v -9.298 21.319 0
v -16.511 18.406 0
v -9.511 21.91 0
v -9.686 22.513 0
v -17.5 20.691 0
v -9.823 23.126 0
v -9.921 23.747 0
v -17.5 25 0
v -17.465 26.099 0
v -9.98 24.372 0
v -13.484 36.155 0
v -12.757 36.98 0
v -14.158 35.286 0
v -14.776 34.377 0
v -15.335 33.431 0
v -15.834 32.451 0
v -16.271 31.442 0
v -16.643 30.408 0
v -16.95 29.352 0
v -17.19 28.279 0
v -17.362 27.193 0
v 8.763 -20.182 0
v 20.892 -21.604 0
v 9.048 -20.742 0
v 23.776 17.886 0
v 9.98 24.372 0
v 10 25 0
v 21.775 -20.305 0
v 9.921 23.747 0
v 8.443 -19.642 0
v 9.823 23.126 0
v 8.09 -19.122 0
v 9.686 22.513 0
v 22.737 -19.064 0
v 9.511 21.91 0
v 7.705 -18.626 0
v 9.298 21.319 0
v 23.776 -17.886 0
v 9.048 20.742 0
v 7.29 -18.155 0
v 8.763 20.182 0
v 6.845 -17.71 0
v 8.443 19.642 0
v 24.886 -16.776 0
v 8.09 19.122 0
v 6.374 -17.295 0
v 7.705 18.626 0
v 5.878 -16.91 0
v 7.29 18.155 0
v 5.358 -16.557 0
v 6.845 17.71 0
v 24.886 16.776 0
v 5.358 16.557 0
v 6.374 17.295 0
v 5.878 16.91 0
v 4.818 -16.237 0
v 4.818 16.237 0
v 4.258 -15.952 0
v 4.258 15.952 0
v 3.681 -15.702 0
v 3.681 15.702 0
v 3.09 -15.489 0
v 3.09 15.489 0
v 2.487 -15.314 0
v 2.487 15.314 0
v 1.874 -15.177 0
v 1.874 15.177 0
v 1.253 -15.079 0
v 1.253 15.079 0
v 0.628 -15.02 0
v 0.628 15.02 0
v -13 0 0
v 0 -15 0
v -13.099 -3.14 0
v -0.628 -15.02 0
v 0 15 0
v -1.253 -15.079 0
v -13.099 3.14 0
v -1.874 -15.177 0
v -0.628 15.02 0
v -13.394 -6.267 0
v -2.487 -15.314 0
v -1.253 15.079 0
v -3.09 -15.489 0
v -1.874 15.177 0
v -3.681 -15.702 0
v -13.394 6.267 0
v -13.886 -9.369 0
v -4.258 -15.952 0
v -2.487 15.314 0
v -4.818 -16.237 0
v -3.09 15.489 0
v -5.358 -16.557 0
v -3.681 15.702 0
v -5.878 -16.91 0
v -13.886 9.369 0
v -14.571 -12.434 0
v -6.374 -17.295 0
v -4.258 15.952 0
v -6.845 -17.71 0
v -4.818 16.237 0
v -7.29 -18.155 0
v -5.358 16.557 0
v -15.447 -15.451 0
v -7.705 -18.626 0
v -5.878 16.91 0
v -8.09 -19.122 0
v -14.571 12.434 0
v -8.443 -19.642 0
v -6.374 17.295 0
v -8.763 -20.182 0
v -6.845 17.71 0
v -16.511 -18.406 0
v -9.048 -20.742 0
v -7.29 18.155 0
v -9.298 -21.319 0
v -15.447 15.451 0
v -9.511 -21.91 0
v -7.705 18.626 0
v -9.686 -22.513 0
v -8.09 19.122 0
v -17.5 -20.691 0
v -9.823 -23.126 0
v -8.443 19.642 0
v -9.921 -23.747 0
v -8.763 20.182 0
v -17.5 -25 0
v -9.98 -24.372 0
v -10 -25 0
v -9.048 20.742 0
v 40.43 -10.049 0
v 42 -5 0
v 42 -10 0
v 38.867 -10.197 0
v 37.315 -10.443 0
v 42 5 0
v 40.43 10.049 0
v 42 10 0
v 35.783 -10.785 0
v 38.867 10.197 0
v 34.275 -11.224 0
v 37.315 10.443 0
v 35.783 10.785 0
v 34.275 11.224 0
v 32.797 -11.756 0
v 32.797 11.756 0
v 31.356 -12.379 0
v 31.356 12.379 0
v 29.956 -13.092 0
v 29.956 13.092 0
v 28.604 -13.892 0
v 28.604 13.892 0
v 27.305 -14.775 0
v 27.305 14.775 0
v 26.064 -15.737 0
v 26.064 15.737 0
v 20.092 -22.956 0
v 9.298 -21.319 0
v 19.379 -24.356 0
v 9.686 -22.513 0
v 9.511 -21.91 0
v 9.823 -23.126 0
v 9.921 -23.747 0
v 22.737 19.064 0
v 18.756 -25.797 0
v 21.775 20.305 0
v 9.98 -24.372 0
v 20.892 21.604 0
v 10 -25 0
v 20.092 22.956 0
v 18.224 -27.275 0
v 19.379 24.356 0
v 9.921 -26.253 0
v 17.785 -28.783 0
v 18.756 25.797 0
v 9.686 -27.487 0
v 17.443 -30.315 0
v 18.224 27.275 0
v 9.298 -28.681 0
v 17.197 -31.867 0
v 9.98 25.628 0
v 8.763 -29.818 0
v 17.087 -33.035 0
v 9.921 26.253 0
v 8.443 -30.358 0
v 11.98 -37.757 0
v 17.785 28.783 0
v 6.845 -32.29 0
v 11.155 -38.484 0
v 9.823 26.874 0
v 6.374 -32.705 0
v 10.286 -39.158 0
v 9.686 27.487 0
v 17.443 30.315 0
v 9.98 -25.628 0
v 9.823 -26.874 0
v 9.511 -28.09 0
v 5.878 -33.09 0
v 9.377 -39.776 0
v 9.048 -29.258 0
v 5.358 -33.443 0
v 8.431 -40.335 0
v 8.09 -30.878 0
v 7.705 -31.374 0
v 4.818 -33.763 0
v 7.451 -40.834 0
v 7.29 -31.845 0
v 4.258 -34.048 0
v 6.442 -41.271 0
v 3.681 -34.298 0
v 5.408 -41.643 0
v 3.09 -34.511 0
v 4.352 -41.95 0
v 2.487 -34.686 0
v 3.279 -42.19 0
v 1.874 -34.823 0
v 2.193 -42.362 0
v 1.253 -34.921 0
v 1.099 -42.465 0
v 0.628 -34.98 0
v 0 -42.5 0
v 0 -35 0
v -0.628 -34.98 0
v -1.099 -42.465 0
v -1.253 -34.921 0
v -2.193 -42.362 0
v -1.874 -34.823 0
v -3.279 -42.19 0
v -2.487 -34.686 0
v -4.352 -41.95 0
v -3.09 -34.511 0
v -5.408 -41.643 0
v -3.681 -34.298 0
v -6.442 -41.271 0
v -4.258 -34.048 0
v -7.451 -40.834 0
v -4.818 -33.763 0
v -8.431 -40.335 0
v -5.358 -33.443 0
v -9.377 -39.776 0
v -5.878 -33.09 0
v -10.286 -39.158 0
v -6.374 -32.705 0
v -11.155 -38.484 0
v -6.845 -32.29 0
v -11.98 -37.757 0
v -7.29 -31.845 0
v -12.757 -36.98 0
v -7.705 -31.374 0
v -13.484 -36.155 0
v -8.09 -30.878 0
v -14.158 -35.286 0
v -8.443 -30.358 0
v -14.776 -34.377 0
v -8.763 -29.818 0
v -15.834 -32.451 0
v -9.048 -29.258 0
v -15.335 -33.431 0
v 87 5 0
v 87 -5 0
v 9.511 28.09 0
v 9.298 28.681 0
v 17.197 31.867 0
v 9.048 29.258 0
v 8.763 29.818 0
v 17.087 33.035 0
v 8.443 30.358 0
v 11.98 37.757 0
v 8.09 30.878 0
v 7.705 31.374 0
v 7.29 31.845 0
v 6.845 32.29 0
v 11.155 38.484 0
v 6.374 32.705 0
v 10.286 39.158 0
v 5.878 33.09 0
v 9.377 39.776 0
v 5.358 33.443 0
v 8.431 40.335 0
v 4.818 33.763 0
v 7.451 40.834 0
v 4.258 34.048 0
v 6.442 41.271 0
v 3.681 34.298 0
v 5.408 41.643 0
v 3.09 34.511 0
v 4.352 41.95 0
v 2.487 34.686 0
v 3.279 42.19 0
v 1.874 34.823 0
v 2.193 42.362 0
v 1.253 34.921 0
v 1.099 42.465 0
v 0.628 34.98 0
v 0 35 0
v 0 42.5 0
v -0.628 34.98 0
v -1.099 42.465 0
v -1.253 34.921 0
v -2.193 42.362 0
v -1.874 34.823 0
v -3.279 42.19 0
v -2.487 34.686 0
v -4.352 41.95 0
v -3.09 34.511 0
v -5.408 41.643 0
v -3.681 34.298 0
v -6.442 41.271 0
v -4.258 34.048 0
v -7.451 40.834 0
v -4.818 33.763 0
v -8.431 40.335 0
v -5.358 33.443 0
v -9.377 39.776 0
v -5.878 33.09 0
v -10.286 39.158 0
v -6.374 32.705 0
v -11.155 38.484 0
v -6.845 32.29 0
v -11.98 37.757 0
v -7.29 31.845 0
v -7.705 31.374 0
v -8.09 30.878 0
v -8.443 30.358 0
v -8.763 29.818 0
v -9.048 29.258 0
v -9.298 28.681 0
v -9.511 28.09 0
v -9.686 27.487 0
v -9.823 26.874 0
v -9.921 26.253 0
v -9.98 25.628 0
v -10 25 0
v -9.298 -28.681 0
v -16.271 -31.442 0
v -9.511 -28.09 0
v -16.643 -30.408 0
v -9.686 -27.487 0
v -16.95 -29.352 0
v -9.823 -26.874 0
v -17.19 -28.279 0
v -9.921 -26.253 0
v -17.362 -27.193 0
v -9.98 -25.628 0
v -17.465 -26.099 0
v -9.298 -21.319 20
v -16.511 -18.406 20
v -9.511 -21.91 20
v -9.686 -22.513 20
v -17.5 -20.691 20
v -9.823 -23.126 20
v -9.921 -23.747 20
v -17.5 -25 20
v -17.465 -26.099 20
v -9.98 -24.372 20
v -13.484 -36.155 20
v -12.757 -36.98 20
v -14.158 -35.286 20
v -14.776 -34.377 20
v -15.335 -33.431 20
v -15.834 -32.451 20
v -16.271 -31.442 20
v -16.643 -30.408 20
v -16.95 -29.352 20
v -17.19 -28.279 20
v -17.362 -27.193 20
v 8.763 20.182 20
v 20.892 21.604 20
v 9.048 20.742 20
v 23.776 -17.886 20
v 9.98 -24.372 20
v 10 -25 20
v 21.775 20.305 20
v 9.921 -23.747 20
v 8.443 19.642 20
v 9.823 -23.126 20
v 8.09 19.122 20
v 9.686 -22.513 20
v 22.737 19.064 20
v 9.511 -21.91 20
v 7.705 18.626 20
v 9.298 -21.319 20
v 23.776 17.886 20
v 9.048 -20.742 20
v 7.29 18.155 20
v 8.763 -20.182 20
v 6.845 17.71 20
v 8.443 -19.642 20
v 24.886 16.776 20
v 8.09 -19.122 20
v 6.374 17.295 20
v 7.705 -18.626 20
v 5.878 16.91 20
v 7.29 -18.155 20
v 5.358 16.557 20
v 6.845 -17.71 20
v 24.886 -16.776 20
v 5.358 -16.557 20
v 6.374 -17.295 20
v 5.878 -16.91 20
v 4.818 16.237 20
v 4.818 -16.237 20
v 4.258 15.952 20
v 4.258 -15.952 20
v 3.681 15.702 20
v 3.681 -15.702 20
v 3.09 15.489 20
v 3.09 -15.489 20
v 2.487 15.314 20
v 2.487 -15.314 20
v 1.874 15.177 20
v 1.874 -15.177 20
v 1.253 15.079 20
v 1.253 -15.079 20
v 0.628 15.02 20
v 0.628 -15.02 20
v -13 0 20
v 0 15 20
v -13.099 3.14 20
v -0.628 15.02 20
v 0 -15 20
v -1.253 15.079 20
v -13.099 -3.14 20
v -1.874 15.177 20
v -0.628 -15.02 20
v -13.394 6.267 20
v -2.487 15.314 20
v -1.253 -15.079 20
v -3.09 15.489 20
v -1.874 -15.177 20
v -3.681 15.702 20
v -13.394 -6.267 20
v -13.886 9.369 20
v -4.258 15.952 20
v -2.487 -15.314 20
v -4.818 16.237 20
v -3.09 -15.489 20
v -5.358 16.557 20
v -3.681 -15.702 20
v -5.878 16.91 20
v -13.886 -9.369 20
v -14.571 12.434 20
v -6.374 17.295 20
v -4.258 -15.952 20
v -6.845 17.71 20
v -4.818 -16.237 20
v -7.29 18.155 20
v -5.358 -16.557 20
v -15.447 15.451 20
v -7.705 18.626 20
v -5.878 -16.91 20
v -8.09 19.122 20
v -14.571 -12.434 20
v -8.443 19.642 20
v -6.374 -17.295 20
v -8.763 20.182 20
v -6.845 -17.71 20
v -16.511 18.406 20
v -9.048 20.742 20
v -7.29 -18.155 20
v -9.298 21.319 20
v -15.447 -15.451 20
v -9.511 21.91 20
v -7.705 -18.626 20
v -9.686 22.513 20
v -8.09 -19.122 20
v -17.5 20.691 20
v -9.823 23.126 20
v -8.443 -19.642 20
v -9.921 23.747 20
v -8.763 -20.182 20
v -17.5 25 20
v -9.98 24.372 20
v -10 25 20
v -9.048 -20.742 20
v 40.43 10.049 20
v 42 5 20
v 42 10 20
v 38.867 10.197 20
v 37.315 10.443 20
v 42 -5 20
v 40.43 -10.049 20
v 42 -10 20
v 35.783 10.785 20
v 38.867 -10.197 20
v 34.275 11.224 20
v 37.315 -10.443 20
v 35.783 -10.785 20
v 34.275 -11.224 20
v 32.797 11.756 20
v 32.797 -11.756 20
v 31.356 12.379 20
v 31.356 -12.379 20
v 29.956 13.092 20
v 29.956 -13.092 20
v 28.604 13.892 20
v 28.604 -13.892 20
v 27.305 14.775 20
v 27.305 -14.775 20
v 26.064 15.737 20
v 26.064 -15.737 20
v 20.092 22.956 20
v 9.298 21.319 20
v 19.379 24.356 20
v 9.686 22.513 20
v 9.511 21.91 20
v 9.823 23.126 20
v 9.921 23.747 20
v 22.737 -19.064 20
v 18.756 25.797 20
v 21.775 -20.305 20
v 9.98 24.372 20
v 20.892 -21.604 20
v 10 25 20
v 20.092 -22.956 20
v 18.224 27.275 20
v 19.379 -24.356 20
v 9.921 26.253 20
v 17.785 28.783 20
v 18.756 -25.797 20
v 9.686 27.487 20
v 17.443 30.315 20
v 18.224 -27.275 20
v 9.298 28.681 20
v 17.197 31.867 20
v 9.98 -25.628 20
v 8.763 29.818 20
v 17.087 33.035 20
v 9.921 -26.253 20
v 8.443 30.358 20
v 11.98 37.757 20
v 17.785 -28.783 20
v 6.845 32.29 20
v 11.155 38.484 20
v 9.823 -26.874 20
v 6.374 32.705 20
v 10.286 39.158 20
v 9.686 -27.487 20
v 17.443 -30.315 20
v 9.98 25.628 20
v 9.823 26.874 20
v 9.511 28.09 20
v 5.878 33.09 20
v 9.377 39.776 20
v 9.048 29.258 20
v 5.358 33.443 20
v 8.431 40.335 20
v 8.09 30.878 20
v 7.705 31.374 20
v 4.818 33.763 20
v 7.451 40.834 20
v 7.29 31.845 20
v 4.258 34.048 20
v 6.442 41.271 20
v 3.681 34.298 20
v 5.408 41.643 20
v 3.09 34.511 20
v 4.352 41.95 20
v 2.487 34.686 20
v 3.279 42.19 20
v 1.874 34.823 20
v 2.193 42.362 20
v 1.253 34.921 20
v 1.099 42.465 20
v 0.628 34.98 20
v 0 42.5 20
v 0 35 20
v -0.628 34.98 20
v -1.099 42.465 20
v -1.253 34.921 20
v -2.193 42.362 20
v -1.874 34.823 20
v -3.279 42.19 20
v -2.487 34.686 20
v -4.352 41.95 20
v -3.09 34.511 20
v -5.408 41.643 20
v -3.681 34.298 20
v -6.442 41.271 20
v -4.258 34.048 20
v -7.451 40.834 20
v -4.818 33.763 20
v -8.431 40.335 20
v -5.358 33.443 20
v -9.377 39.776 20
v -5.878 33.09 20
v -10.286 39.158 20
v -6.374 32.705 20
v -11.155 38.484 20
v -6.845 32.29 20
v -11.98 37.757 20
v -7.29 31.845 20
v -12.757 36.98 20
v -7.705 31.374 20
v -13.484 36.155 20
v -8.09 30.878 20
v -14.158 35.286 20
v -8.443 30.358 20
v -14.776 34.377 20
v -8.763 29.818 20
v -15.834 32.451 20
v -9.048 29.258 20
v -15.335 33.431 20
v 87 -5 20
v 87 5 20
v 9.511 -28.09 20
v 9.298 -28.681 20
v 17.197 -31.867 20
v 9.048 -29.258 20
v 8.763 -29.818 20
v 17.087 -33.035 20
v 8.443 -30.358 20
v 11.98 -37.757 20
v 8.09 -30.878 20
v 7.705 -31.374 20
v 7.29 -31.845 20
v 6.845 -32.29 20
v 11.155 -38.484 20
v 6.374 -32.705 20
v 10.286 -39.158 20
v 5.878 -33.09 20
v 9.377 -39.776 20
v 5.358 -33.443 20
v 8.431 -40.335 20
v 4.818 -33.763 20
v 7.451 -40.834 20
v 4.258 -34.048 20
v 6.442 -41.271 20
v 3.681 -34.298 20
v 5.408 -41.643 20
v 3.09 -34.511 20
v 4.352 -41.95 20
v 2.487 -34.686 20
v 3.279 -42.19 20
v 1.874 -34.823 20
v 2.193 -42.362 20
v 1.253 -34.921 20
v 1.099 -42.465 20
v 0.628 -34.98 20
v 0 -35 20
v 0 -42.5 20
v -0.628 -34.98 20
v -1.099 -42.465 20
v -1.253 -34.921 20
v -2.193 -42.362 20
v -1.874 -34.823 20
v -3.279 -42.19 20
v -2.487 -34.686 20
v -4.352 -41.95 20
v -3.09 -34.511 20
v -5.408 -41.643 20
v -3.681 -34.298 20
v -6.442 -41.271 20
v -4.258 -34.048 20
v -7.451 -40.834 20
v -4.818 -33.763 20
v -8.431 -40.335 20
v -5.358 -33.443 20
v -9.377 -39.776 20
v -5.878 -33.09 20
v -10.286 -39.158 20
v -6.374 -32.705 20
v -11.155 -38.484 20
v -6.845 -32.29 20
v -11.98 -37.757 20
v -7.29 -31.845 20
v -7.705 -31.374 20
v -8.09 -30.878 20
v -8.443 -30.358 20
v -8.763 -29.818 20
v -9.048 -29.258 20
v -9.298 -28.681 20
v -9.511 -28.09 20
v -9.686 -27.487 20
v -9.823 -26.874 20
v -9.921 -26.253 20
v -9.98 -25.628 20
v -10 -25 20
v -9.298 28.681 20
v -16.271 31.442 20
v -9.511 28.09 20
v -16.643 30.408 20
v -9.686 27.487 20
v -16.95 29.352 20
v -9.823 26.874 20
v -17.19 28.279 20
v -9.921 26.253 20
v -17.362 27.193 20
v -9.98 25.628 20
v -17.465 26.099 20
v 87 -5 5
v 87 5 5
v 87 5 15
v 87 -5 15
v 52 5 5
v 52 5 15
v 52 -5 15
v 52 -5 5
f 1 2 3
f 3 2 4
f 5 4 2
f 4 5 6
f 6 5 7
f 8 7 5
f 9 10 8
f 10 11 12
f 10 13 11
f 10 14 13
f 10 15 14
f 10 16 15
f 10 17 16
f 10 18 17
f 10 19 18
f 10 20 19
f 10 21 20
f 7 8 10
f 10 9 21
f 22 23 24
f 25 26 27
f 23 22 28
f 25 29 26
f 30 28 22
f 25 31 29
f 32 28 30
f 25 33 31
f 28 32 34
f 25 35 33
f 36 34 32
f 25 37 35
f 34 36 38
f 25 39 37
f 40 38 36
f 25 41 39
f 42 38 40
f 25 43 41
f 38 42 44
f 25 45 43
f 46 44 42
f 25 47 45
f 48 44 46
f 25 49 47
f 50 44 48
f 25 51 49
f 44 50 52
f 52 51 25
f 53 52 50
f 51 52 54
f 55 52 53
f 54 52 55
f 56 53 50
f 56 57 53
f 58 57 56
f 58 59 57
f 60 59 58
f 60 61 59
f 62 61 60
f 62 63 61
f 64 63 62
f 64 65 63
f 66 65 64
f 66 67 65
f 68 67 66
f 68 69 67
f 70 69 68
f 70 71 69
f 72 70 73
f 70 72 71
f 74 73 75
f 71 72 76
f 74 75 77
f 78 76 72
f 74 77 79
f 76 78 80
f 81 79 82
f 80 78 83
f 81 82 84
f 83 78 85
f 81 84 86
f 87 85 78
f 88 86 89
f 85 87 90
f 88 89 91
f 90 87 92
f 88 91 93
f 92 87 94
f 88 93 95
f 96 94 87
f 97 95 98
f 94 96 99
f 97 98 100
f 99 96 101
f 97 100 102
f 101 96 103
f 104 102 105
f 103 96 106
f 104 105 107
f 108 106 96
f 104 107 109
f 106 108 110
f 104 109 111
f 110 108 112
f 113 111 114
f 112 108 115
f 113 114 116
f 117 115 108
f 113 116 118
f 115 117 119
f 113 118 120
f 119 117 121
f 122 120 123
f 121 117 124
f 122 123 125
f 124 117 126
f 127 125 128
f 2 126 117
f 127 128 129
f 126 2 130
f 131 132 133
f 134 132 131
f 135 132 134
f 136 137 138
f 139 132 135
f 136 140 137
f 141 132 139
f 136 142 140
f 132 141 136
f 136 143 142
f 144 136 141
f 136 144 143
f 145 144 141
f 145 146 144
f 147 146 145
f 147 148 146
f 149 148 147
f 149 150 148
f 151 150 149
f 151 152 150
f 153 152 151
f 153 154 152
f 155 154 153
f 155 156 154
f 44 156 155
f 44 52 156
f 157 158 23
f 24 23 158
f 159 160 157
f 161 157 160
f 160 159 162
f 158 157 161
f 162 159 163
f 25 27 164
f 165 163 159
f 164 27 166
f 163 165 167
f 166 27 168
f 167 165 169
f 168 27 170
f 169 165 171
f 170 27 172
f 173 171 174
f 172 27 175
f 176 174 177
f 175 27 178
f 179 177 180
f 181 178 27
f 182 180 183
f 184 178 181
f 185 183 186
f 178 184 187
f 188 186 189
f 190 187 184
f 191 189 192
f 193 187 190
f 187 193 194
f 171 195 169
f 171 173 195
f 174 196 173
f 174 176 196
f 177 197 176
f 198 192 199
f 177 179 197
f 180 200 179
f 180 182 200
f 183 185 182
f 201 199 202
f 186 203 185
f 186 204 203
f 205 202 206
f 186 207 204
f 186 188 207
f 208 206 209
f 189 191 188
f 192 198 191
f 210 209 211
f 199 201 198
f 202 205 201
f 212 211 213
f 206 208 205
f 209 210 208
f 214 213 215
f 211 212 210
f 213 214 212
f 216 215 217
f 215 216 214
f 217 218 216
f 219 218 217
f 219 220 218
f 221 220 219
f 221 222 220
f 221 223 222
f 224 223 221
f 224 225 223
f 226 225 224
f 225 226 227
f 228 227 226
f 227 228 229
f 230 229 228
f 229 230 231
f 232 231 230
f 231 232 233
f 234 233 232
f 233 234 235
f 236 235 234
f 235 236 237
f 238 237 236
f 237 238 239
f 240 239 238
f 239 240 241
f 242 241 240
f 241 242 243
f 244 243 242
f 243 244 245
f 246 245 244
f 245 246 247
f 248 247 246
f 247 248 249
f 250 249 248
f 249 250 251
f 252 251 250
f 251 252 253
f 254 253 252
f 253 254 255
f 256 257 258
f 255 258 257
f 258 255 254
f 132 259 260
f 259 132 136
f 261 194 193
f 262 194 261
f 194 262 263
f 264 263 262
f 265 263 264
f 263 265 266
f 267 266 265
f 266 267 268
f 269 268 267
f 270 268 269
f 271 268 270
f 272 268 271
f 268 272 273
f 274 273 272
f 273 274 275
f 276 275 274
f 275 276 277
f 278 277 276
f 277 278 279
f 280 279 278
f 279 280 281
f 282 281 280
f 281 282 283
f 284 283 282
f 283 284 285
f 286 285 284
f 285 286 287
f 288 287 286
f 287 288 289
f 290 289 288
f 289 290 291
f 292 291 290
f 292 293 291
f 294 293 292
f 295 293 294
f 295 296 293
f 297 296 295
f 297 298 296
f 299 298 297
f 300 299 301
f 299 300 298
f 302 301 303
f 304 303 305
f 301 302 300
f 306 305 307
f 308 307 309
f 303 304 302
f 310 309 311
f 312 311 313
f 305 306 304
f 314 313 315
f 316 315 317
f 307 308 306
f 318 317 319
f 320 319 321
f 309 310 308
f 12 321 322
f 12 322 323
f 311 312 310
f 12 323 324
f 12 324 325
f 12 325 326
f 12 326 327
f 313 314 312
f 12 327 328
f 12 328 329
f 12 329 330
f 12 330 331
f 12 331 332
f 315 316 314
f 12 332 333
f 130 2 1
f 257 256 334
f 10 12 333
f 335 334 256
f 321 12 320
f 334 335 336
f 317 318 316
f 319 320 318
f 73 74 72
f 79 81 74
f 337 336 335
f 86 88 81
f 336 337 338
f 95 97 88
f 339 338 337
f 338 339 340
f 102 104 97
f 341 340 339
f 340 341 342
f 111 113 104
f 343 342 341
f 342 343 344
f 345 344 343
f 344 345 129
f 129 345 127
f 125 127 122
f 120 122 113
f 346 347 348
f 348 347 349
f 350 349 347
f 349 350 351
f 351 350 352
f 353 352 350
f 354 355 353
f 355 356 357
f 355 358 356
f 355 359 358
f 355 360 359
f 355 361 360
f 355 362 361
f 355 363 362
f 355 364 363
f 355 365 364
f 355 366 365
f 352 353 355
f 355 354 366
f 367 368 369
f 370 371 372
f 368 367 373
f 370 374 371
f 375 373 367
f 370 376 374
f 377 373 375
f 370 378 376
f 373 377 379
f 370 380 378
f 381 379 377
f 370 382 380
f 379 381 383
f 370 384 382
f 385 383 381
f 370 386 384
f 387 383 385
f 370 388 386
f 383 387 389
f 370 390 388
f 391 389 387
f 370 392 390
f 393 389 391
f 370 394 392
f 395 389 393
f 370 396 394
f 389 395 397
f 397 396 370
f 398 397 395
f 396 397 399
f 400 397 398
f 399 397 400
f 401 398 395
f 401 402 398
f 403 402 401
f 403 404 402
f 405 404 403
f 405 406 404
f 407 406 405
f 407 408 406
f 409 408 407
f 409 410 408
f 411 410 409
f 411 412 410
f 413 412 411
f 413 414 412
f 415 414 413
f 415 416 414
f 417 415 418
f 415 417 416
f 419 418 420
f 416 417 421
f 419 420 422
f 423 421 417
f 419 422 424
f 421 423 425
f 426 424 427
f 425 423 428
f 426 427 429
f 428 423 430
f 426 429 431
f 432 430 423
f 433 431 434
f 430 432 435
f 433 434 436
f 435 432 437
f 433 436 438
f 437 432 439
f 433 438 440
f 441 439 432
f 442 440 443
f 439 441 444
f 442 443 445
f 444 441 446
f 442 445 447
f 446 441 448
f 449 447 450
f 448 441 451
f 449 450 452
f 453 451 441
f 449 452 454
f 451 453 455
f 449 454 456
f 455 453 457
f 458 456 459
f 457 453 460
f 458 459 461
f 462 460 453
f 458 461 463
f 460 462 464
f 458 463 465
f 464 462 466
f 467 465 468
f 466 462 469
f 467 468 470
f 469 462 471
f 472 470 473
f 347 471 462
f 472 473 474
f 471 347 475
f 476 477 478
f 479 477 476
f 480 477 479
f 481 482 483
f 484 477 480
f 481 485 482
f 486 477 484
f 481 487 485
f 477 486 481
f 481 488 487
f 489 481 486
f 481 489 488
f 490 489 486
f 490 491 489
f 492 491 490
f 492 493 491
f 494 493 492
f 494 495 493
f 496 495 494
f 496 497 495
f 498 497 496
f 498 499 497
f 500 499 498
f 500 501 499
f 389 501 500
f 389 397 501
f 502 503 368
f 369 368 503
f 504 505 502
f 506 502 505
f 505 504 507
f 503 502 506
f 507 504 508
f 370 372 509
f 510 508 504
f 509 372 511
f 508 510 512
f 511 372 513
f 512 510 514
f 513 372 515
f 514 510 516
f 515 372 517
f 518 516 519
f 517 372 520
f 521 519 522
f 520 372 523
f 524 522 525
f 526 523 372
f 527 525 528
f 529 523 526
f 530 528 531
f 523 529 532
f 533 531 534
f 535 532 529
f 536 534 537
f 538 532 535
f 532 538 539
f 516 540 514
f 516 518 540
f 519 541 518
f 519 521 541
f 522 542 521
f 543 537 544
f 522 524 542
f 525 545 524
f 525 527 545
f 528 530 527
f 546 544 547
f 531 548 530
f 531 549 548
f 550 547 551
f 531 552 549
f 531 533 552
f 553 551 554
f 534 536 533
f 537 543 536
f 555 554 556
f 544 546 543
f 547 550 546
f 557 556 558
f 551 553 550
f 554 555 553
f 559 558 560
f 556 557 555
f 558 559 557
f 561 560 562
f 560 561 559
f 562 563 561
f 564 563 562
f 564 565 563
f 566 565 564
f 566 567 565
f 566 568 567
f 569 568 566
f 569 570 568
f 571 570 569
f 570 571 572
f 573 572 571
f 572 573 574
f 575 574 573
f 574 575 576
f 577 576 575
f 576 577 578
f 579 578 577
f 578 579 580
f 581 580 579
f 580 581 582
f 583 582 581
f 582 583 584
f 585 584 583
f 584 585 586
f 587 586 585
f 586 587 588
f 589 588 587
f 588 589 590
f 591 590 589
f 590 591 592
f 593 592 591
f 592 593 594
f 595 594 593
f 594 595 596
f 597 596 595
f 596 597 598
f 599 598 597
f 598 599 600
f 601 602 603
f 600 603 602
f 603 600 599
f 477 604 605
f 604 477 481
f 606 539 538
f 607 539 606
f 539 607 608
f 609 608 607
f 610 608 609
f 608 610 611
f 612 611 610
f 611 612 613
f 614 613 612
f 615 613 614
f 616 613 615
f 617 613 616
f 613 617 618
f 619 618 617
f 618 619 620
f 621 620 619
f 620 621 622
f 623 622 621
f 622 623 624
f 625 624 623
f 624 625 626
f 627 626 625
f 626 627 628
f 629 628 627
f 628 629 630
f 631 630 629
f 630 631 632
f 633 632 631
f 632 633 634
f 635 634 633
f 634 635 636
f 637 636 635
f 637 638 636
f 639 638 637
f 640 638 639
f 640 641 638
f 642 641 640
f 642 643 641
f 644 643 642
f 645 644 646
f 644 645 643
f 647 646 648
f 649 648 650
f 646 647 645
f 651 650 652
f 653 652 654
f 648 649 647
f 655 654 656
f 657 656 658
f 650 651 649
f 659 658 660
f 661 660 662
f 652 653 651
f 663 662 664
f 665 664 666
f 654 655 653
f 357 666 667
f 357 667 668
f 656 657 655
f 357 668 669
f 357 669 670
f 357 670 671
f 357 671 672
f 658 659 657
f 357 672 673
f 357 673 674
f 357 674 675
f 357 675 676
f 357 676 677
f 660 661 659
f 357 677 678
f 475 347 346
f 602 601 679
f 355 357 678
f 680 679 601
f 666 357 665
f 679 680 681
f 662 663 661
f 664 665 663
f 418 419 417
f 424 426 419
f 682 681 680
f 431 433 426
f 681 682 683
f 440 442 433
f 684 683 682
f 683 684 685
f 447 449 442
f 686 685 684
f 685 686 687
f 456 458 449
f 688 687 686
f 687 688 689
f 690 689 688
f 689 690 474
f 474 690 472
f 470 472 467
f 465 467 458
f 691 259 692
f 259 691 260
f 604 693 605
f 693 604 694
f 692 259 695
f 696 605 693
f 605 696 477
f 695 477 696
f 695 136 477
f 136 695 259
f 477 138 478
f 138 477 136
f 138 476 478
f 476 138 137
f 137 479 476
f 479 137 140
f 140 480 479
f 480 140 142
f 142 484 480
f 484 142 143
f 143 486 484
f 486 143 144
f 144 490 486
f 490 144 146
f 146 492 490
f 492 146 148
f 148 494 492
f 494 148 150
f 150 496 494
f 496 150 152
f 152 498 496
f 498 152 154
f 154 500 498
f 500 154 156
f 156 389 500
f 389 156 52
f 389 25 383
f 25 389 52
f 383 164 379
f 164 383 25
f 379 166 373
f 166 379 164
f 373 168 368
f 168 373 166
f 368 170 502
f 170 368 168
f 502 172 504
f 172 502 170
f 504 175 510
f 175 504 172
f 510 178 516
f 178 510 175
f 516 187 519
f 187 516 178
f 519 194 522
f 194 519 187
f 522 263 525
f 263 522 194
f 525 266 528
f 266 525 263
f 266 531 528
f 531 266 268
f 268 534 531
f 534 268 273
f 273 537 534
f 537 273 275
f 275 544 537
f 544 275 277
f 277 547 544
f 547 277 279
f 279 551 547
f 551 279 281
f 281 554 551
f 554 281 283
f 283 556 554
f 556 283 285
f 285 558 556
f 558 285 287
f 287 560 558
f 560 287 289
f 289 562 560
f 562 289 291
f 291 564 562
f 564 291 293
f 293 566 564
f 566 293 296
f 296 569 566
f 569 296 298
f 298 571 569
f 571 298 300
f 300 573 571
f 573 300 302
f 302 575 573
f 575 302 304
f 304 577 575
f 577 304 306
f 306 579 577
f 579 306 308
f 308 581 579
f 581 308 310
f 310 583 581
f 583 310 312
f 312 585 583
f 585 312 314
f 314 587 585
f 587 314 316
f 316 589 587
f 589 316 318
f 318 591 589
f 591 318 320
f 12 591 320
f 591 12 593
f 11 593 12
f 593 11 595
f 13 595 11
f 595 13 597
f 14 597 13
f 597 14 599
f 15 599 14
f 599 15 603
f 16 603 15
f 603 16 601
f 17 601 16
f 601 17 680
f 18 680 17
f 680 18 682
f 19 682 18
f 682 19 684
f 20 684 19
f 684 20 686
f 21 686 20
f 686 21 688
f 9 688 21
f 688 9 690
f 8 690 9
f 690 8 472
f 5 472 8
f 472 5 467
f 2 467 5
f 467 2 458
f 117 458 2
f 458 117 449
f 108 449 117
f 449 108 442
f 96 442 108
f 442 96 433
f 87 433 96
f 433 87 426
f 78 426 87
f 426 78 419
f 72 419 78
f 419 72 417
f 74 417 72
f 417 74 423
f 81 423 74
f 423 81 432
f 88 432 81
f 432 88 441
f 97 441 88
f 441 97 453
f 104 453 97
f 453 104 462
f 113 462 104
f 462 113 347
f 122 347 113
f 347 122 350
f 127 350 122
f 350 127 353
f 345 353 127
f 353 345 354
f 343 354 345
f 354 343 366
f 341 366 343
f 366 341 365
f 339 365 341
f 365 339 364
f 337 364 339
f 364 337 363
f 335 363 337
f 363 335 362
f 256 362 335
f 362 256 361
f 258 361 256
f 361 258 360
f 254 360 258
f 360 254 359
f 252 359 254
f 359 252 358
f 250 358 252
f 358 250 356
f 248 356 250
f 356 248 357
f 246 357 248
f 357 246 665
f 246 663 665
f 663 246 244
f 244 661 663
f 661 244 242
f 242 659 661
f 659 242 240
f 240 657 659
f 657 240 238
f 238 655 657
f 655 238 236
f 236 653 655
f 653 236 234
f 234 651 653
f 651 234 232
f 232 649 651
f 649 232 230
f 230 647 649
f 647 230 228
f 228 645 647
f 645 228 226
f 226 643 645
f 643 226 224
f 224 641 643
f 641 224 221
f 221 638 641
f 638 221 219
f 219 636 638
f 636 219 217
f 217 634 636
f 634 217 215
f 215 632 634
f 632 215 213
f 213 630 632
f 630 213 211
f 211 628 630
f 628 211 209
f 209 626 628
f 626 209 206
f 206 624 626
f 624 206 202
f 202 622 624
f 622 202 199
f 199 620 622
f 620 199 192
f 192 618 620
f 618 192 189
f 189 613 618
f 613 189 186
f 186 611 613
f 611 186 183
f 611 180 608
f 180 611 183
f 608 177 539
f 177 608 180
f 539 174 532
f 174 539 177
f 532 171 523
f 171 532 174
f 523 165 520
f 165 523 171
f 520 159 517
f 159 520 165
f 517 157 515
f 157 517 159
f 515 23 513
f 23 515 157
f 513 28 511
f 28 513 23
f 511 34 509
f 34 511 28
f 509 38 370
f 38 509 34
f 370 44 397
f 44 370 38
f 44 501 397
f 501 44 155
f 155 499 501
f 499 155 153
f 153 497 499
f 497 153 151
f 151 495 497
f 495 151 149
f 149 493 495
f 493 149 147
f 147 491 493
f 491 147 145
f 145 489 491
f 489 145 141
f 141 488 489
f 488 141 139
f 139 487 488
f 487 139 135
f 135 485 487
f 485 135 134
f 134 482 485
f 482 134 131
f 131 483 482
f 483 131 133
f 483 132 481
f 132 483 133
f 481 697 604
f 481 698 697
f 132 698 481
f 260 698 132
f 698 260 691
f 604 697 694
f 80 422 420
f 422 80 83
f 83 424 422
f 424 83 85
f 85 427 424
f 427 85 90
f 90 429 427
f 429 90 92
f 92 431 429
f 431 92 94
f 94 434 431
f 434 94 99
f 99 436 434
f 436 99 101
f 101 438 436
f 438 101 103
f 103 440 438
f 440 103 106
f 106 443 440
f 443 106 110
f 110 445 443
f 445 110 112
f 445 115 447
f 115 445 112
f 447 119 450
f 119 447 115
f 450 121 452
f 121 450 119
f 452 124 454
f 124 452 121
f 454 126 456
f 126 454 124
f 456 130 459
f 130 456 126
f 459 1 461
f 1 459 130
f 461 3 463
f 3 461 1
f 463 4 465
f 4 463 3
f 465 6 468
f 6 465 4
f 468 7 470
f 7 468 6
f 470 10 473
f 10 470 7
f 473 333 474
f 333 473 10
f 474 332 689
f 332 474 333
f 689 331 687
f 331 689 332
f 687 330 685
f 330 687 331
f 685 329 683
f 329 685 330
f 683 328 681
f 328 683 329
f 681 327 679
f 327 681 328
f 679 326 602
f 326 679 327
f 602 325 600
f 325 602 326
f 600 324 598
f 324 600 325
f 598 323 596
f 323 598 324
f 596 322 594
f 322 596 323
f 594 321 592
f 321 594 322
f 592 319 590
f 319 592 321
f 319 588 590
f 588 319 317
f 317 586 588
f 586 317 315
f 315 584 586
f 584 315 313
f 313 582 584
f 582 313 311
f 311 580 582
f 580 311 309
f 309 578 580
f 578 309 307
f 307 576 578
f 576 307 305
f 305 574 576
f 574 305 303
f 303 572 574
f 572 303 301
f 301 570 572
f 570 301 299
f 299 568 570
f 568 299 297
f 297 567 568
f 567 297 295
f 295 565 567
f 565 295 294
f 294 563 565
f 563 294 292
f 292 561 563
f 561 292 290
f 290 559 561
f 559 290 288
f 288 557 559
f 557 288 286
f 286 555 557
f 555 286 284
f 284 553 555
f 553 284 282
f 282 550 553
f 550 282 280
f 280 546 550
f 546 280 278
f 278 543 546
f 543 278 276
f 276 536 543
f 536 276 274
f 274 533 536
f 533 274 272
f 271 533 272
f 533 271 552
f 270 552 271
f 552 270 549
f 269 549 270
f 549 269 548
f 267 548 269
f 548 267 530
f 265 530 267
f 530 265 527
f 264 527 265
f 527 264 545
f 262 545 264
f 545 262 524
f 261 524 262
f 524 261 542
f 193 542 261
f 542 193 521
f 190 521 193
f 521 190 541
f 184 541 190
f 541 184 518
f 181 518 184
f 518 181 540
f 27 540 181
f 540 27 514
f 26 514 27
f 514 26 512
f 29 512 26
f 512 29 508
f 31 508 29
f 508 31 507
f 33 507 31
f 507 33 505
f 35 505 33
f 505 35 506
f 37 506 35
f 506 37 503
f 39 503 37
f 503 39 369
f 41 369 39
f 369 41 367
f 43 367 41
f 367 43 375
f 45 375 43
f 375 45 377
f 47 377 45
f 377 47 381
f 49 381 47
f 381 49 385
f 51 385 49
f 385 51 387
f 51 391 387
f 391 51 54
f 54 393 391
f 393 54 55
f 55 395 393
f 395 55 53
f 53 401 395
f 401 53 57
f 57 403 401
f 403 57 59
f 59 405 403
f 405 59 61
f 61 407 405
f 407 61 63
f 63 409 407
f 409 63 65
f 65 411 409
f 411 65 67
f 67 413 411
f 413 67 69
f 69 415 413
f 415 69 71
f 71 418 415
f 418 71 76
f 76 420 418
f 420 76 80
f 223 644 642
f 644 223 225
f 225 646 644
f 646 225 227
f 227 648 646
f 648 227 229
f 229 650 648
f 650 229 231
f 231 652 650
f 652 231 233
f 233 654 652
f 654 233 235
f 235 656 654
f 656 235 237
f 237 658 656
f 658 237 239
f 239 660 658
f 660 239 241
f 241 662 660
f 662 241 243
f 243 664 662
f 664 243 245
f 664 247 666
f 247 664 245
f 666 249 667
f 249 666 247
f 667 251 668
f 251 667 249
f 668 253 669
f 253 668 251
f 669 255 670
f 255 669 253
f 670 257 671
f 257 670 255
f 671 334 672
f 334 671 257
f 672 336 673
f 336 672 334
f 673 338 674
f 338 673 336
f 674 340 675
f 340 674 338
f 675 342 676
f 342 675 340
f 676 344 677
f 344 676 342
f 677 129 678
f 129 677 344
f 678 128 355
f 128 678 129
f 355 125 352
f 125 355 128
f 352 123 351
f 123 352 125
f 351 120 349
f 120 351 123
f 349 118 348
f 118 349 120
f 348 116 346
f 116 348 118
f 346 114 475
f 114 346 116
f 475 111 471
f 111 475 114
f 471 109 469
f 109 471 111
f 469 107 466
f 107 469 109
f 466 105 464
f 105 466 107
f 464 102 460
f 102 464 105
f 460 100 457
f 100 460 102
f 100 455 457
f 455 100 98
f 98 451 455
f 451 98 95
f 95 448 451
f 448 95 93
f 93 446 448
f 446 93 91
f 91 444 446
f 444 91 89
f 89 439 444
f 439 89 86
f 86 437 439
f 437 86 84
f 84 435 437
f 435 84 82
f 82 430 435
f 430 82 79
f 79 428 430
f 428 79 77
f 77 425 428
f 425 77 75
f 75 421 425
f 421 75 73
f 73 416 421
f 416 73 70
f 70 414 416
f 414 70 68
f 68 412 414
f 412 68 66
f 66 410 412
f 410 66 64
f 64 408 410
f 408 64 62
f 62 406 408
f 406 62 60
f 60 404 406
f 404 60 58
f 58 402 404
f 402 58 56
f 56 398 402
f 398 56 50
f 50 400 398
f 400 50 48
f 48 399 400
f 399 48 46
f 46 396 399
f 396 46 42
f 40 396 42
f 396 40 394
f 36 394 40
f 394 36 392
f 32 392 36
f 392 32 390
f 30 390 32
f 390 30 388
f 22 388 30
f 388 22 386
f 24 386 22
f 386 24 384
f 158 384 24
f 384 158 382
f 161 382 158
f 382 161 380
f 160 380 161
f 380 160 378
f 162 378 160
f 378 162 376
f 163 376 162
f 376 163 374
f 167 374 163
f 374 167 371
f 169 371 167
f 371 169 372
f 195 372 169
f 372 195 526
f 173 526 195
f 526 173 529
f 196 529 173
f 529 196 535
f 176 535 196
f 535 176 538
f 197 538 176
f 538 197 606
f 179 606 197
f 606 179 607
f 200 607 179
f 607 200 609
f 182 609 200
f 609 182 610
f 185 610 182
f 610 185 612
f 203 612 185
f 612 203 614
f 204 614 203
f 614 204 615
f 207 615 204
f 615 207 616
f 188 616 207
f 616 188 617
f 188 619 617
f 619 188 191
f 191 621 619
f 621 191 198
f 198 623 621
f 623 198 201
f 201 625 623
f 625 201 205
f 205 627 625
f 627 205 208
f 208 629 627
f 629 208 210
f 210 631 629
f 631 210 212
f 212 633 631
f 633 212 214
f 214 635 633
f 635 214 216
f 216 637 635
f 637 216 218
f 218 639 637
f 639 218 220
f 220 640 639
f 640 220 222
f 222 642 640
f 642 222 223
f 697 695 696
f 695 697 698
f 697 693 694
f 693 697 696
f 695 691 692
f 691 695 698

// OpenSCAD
$fn=100;

difference() {
    linear_extrude(20) {
        difference() {
            union() {
                hull() {
                    translate([0, -25]) circle(35/2);
                    translate([0, 25]) circle(35/2);
                    translate([0,-10]) square([87-45, 20]);
                }
                translate([87-45,-5]) square([45, 10]);
            }
            
            translate([87-45, 35]) circle(25);
            translate([87-45, -35]) circle(25);
            translate([-63, 0]) circle(50);
            
            translate([0, -25]) circle(20/2);
            translate([0, 25]) circle(20/2);
        }
    }
    
    #translate([87-35, -5, 5]) cube([35, 10,10]);
}
